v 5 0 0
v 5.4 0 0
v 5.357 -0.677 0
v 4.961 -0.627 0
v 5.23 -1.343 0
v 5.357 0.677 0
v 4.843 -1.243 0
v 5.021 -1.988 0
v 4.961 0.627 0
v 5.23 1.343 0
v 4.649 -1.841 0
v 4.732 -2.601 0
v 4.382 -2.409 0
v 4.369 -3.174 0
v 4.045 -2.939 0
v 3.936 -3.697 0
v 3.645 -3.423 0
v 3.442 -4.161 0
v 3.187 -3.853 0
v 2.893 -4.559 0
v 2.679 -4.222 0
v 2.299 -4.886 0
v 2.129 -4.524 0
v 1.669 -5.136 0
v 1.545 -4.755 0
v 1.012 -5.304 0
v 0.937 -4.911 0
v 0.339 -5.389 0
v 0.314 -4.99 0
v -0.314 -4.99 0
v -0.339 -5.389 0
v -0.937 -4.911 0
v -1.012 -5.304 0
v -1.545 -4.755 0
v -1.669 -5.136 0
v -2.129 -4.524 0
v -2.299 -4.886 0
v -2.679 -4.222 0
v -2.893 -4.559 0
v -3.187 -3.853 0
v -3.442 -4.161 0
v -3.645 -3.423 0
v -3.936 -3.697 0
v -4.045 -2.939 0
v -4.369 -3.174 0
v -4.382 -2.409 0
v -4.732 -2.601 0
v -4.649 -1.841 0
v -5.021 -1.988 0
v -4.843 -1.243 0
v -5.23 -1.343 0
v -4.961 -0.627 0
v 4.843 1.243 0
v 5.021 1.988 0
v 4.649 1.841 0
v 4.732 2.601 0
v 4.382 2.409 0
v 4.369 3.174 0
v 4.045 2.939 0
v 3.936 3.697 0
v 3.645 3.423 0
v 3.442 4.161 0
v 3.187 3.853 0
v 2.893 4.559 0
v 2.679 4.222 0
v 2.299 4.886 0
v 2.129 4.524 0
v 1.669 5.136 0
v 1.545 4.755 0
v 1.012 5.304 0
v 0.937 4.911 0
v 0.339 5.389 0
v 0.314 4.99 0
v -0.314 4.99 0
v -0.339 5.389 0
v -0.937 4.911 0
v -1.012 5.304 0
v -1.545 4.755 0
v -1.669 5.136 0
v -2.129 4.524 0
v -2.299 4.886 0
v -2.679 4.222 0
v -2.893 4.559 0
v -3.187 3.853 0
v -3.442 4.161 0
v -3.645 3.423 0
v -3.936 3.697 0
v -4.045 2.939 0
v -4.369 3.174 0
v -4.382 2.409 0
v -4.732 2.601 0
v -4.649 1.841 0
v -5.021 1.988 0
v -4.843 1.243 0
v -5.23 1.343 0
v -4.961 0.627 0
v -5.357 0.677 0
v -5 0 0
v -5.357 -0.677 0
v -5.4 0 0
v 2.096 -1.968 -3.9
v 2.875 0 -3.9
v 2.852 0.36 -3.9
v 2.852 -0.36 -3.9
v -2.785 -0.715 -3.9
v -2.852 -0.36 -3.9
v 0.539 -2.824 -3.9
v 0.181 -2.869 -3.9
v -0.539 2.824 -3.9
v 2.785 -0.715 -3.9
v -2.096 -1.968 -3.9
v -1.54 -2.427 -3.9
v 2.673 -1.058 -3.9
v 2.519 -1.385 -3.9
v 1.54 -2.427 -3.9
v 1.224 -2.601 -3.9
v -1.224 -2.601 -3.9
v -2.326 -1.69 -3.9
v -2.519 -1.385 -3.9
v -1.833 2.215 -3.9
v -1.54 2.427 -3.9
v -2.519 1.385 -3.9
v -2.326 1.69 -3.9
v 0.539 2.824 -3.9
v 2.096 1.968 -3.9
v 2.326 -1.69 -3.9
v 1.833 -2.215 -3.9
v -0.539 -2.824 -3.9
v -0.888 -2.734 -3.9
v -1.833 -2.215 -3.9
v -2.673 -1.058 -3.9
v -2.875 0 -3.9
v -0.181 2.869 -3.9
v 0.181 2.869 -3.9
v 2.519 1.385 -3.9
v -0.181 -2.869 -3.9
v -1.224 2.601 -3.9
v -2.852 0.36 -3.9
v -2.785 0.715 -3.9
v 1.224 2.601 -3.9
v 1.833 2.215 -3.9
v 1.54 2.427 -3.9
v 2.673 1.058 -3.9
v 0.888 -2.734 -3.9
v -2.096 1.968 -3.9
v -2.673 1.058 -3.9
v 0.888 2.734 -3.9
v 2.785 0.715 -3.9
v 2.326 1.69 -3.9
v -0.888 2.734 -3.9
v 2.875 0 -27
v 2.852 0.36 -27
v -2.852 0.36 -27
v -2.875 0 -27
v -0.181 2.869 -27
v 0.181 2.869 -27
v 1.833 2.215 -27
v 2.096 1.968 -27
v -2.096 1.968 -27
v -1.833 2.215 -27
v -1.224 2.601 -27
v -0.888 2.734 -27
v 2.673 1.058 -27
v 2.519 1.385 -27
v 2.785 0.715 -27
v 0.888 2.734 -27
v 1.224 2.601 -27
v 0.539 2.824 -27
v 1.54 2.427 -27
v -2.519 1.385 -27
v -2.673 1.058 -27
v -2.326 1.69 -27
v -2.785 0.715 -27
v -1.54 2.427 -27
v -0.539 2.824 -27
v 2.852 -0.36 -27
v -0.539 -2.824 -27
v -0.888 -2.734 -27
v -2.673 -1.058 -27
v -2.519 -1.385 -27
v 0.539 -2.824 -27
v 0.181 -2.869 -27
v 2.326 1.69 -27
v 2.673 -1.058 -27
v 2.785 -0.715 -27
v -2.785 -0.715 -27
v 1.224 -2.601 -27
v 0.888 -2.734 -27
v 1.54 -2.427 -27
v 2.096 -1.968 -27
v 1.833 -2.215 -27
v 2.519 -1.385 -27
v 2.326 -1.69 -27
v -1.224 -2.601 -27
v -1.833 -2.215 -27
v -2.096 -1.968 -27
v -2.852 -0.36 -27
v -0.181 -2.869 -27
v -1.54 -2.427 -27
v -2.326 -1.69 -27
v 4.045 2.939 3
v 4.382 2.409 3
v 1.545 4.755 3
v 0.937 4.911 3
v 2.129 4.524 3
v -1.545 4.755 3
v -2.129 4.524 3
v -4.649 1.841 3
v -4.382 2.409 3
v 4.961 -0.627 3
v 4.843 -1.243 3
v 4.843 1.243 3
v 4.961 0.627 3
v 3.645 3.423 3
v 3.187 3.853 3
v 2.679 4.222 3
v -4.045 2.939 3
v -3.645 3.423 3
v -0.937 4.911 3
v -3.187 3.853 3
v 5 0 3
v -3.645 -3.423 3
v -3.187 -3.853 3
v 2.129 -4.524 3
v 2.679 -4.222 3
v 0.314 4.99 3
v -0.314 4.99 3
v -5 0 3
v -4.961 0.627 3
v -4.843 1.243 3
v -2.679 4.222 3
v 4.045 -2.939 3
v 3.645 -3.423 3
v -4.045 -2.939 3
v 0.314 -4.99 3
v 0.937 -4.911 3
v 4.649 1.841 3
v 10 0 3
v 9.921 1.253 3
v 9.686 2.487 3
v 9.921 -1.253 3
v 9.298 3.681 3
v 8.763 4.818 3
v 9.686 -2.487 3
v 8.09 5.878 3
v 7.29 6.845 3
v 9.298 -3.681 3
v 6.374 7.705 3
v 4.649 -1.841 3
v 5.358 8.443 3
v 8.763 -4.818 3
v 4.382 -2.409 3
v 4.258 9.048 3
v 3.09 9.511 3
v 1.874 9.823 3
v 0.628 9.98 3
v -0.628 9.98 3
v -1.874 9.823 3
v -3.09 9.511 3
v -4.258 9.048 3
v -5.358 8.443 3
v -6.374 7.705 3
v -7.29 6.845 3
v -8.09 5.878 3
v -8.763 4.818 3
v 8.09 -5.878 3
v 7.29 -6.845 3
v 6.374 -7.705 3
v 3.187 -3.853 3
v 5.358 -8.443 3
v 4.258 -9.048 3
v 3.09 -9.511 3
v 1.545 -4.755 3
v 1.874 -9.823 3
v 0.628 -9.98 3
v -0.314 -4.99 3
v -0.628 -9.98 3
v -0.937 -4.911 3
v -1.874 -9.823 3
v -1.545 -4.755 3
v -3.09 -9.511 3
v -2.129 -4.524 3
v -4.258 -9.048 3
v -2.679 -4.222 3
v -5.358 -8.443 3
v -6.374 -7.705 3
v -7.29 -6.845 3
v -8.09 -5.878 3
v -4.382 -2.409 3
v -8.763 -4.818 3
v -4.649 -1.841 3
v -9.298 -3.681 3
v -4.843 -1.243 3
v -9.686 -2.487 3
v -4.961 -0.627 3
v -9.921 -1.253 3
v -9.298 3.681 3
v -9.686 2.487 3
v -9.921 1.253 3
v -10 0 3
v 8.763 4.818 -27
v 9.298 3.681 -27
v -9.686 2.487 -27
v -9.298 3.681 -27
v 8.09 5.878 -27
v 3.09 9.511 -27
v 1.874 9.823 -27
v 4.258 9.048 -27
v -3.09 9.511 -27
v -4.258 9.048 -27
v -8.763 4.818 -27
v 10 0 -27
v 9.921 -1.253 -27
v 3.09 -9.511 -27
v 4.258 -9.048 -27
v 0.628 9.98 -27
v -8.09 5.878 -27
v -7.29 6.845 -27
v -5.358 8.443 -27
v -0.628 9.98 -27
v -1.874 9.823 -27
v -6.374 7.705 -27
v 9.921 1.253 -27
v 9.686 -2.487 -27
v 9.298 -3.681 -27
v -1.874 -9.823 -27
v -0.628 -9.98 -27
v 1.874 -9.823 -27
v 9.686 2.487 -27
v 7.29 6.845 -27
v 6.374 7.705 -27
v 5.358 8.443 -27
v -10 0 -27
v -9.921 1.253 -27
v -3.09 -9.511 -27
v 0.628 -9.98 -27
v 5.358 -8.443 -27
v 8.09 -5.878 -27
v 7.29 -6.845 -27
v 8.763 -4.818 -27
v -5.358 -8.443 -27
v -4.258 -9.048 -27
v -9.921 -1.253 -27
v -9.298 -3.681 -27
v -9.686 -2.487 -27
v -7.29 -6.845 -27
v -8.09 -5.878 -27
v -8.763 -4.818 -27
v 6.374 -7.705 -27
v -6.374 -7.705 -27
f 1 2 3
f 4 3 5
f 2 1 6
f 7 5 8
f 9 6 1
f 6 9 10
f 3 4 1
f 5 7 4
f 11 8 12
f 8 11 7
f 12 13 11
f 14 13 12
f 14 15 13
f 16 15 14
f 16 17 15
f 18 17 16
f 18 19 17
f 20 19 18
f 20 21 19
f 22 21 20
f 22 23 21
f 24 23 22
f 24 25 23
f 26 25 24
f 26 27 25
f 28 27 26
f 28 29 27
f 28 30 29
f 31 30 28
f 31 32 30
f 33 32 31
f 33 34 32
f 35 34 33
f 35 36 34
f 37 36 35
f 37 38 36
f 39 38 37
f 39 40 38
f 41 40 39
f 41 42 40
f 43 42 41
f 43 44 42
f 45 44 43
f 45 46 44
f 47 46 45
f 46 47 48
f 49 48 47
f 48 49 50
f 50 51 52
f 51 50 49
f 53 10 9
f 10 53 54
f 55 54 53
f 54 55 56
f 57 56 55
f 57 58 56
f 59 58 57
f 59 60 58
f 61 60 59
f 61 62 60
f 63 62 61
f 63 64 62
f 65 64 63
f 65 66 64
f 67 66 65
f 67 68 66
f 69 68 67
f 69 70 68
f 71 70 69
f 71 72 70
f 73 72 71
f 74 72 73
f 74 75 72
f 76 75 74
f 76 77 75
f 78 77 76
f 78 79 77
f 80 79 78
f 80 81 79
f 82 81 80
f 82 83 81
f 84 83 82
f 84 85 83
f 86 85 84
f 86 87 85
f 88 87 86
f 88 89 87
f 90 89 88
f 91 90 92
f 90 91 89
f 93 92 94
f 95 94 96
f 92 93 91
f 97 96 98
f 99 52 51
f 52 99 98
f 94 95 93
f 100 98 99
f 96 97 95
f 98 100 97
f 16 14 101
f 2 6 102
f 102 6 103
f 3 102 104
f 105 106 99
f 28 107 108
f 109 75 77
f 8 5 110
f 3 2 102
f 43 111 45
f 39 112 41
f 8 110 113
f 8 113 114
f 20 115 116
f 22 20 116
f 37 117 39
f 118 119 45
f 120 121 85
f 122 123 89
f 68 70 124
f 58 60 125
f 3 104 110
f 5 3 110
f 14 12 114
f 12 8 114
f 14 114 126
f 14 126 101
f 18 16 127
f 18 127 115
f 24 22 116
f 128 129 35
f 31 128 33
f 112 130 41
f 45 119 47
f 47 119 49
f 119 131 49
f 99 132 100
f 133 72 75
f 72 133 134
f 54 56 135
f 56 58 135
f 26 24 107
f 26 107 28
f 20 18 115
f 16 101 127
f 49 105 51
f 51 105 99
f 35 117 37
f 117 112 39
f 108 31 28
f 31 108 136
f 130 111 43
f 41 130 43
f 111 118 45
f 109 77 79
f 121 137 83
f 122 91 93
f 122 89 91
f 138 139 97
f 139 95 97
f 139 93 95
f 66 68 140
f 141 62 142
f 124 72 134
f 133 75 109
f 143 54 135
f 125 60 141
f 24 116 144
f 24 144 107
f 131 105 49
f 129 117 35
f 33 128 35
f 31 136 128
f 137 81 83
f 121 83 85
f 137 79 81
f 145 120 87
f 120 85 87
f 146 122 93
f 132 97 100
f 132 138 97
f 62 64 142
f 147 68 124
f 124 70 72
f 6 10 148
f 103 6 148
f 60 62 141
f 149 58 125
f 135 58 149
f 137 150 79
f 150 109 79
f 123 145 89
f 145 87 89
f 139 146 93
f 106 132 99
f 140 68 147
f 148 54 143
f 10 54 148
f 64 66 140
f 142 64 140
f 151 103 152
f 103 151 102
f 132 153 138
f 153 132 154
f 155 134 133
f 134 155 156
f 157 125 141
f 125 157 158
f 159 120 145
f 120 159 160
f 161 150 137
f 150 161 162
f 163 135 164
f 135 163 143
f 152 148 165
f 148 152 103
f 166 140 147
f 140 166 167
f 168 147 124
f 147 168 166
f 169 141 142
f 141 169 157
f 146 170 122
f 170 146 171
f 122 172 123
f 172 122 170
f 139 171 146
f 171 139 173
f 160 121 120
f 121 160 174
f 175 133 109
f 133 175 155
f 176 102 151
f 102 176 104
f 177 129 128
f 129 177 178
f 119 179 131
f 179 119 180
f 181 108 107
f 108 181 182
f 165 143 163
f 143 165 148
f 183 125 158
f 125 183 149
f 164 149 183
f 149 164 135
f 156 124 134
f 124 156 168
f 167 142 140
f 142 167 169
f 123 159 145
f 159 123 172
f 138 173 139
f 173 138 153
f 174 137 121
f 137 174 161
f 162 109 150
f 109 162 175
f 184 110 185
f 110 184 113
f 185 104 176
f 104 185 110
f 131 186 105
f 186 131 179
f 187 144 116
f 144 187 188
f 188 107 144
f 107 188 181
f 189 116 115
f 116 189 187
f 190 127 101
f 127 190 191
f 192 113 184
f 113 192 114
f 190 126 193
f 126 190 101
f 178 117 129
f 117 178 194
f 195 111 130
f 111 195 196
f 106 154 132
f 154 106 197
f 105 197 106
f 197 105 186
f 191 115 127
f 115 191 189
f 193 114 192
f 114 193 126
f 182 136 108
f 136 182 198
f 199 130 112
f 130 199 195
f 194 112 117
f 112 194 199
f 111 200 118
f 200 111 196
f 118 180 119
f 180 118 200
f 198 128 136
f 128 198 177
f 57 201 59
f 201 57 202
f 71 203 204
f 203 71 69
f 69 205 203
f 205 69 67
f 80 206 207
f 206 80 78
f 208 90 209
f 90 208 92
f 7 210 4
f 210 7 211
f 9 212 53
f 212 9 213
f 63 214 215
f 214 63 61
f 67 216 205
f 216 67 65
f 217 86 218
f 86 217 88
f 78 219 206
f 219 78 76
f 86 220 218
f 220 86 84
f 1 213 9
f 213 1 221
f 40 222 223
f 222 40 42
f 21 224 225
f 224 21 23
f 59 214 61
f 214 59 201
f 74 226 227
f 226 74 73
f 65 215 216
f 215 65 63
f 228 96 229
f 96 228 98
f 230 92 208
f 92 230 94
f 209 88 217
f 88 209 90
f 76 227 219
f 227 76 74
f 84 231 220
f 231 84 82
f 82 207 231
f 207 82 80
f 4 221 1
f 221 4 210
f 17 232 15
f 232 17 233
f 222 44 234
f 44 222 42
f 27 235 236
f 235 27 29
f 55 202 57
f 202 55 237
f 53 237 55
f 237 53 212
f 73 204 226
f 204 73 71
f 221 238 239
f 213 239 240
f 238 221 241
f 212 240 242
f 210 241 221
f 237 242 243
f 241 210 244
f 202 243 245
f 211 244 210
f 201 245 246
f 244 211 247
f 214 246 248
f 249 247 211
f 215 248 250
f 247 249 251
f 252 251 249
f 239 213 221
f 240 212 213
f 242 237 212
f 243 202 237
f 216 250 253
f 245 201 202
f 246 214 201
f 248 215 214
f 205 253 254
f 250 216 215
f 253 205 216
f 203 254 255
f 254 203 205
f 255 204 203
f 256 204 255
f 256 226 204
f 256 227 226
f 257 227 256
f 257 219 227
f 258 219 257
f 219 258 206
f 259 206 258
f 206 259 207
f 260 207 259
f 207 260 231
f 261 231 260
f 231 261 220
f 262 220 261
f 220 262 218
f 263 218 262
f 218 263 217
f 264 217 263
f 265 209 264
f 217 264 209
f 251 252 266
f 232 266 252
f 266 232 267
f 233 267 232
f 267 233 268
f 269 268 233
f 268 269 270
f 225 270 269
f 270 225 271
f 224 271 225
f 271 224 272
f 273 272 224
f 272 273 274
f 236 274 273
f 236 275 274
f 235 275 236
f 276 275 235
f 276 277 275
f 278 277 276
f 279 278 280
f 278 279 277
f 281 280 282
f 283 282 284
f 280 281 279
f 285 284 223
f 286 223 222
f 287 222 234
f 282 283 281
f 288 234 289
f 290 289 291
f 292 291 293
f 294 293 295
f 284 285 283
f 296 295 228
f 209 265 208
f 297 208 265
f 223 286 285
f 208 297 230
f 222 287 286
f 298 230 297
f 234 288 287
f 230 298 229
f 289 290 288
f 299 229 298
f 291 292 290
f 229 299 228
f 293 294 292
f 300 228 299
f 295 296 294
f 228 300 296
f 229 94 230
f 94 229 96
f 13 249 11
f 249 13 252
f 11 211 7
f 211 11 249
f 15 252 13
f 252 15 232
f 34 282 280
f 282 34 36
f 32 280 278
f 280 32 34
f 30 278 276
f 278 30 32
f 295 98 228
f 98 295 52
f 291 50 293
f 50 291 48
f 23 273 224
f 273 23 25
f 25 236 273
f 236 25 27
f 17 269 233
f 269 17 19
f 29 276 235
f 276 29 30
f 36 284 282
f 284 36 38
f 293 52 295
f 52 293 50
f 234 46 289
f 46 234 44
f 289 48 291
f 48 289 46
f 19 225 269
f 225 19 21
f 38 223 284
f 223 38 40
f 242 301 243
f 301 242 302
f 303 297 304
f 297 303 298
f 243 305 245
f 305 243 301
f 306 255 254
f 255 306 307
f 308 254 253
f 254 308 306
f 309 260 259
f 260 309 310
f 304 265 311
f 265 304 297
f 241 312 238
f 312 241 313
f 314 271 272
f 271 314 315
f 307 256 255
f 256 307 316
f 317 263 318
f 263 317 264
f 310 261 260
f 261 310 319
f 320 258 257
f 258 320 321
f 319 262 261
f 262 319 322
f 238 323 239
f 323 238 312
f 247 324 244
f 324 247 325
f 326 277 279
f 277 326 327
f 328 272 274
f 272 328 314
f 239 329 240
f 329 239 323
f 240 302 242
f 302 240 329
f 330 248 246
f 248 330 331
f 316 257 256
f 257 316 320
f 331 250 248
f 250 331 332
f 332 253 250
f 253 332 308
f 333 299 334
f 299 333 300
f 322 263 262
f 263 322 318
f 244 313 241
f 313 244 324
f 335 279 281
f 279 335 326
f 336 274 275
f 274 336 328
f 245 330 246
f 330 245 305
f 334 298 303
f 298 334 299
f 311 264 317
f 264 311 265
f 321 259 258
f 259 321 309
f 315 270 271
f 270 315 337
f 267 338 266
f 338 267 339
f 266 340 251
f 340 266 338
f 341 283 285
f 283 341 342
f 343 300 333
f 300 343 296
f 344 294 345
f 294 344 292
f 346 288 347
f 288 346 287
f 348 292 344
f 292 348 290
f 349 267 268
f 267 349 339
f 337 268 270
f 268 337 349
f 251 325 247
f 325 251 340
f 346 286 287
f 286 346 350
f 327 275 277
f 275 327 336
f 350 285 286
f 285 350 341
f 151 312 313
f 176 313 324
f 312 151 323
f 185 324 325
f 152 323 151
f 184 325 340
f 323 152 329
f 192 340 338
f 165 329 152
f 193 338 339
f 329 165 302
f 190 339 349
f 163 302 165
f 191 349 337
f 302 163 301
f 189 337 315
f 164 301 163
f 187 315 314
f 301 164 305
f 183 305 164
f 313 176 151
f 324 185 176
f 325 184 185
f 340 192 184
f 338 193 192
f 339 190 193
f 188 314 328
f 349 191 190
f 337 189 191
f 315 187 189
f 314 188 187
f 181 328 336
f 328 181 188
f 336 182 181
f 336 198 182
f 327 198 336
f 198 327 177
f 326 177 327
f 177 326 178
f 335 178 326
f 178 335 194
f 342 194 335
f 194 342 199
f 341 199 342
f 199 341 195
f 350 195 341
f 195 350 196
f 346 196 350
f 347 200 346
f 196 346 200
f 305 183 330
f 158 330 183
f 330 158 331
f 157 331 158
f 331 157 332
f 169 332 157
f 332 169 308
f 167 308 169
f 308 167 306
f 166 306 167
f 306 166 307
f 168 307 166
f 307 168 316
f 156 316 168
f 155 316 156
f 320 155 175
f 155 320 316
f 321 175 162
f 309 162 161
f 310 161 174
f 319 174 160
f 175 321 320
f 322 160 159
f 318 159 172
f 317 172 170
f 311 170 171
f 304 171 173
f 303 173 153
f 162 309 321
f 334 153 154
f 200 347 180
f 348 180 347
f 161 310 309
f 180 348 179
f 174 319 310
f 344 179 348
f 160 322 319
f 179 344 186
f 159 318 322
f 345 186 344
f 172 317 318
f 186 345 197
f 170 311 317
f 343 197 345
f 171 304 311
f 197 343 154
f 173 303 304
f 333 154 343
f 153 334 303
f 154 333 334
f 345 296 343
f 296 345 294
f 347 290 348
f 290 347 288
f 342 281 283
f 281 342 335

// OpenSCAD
$fn = 50;

difference() {
	union() {
		translate(v = [0, 0, -27.0]) {
			cylinder(h = 30, r = 10.0);
		}
	}
	union() {
		translate(v = [0, 0, 0]) {
			rotate(a = [0, 0, 0]) {
				difference() {
					union() {
						translate(v = [0, 0, -30.0]) {
							cylinder(h = 30, r = 2.6);
						}
						translate(v = [0, 0, -3.9]) {
							cylinder(h = 3.9, r1 = 2.875, r2 = 5.4);
						}
						translate(v = [0, 0, -30.0]) {
							cylinder(h = 30, r = 2.875);
						}
						translate(v = [0, 0, -30.0]) {
							cylinder(h = 30, r = 2.6);
						}
					}
					union();
				}
			}
		}
		#cylinder(h = 3, r = 5.0);
	}
}
